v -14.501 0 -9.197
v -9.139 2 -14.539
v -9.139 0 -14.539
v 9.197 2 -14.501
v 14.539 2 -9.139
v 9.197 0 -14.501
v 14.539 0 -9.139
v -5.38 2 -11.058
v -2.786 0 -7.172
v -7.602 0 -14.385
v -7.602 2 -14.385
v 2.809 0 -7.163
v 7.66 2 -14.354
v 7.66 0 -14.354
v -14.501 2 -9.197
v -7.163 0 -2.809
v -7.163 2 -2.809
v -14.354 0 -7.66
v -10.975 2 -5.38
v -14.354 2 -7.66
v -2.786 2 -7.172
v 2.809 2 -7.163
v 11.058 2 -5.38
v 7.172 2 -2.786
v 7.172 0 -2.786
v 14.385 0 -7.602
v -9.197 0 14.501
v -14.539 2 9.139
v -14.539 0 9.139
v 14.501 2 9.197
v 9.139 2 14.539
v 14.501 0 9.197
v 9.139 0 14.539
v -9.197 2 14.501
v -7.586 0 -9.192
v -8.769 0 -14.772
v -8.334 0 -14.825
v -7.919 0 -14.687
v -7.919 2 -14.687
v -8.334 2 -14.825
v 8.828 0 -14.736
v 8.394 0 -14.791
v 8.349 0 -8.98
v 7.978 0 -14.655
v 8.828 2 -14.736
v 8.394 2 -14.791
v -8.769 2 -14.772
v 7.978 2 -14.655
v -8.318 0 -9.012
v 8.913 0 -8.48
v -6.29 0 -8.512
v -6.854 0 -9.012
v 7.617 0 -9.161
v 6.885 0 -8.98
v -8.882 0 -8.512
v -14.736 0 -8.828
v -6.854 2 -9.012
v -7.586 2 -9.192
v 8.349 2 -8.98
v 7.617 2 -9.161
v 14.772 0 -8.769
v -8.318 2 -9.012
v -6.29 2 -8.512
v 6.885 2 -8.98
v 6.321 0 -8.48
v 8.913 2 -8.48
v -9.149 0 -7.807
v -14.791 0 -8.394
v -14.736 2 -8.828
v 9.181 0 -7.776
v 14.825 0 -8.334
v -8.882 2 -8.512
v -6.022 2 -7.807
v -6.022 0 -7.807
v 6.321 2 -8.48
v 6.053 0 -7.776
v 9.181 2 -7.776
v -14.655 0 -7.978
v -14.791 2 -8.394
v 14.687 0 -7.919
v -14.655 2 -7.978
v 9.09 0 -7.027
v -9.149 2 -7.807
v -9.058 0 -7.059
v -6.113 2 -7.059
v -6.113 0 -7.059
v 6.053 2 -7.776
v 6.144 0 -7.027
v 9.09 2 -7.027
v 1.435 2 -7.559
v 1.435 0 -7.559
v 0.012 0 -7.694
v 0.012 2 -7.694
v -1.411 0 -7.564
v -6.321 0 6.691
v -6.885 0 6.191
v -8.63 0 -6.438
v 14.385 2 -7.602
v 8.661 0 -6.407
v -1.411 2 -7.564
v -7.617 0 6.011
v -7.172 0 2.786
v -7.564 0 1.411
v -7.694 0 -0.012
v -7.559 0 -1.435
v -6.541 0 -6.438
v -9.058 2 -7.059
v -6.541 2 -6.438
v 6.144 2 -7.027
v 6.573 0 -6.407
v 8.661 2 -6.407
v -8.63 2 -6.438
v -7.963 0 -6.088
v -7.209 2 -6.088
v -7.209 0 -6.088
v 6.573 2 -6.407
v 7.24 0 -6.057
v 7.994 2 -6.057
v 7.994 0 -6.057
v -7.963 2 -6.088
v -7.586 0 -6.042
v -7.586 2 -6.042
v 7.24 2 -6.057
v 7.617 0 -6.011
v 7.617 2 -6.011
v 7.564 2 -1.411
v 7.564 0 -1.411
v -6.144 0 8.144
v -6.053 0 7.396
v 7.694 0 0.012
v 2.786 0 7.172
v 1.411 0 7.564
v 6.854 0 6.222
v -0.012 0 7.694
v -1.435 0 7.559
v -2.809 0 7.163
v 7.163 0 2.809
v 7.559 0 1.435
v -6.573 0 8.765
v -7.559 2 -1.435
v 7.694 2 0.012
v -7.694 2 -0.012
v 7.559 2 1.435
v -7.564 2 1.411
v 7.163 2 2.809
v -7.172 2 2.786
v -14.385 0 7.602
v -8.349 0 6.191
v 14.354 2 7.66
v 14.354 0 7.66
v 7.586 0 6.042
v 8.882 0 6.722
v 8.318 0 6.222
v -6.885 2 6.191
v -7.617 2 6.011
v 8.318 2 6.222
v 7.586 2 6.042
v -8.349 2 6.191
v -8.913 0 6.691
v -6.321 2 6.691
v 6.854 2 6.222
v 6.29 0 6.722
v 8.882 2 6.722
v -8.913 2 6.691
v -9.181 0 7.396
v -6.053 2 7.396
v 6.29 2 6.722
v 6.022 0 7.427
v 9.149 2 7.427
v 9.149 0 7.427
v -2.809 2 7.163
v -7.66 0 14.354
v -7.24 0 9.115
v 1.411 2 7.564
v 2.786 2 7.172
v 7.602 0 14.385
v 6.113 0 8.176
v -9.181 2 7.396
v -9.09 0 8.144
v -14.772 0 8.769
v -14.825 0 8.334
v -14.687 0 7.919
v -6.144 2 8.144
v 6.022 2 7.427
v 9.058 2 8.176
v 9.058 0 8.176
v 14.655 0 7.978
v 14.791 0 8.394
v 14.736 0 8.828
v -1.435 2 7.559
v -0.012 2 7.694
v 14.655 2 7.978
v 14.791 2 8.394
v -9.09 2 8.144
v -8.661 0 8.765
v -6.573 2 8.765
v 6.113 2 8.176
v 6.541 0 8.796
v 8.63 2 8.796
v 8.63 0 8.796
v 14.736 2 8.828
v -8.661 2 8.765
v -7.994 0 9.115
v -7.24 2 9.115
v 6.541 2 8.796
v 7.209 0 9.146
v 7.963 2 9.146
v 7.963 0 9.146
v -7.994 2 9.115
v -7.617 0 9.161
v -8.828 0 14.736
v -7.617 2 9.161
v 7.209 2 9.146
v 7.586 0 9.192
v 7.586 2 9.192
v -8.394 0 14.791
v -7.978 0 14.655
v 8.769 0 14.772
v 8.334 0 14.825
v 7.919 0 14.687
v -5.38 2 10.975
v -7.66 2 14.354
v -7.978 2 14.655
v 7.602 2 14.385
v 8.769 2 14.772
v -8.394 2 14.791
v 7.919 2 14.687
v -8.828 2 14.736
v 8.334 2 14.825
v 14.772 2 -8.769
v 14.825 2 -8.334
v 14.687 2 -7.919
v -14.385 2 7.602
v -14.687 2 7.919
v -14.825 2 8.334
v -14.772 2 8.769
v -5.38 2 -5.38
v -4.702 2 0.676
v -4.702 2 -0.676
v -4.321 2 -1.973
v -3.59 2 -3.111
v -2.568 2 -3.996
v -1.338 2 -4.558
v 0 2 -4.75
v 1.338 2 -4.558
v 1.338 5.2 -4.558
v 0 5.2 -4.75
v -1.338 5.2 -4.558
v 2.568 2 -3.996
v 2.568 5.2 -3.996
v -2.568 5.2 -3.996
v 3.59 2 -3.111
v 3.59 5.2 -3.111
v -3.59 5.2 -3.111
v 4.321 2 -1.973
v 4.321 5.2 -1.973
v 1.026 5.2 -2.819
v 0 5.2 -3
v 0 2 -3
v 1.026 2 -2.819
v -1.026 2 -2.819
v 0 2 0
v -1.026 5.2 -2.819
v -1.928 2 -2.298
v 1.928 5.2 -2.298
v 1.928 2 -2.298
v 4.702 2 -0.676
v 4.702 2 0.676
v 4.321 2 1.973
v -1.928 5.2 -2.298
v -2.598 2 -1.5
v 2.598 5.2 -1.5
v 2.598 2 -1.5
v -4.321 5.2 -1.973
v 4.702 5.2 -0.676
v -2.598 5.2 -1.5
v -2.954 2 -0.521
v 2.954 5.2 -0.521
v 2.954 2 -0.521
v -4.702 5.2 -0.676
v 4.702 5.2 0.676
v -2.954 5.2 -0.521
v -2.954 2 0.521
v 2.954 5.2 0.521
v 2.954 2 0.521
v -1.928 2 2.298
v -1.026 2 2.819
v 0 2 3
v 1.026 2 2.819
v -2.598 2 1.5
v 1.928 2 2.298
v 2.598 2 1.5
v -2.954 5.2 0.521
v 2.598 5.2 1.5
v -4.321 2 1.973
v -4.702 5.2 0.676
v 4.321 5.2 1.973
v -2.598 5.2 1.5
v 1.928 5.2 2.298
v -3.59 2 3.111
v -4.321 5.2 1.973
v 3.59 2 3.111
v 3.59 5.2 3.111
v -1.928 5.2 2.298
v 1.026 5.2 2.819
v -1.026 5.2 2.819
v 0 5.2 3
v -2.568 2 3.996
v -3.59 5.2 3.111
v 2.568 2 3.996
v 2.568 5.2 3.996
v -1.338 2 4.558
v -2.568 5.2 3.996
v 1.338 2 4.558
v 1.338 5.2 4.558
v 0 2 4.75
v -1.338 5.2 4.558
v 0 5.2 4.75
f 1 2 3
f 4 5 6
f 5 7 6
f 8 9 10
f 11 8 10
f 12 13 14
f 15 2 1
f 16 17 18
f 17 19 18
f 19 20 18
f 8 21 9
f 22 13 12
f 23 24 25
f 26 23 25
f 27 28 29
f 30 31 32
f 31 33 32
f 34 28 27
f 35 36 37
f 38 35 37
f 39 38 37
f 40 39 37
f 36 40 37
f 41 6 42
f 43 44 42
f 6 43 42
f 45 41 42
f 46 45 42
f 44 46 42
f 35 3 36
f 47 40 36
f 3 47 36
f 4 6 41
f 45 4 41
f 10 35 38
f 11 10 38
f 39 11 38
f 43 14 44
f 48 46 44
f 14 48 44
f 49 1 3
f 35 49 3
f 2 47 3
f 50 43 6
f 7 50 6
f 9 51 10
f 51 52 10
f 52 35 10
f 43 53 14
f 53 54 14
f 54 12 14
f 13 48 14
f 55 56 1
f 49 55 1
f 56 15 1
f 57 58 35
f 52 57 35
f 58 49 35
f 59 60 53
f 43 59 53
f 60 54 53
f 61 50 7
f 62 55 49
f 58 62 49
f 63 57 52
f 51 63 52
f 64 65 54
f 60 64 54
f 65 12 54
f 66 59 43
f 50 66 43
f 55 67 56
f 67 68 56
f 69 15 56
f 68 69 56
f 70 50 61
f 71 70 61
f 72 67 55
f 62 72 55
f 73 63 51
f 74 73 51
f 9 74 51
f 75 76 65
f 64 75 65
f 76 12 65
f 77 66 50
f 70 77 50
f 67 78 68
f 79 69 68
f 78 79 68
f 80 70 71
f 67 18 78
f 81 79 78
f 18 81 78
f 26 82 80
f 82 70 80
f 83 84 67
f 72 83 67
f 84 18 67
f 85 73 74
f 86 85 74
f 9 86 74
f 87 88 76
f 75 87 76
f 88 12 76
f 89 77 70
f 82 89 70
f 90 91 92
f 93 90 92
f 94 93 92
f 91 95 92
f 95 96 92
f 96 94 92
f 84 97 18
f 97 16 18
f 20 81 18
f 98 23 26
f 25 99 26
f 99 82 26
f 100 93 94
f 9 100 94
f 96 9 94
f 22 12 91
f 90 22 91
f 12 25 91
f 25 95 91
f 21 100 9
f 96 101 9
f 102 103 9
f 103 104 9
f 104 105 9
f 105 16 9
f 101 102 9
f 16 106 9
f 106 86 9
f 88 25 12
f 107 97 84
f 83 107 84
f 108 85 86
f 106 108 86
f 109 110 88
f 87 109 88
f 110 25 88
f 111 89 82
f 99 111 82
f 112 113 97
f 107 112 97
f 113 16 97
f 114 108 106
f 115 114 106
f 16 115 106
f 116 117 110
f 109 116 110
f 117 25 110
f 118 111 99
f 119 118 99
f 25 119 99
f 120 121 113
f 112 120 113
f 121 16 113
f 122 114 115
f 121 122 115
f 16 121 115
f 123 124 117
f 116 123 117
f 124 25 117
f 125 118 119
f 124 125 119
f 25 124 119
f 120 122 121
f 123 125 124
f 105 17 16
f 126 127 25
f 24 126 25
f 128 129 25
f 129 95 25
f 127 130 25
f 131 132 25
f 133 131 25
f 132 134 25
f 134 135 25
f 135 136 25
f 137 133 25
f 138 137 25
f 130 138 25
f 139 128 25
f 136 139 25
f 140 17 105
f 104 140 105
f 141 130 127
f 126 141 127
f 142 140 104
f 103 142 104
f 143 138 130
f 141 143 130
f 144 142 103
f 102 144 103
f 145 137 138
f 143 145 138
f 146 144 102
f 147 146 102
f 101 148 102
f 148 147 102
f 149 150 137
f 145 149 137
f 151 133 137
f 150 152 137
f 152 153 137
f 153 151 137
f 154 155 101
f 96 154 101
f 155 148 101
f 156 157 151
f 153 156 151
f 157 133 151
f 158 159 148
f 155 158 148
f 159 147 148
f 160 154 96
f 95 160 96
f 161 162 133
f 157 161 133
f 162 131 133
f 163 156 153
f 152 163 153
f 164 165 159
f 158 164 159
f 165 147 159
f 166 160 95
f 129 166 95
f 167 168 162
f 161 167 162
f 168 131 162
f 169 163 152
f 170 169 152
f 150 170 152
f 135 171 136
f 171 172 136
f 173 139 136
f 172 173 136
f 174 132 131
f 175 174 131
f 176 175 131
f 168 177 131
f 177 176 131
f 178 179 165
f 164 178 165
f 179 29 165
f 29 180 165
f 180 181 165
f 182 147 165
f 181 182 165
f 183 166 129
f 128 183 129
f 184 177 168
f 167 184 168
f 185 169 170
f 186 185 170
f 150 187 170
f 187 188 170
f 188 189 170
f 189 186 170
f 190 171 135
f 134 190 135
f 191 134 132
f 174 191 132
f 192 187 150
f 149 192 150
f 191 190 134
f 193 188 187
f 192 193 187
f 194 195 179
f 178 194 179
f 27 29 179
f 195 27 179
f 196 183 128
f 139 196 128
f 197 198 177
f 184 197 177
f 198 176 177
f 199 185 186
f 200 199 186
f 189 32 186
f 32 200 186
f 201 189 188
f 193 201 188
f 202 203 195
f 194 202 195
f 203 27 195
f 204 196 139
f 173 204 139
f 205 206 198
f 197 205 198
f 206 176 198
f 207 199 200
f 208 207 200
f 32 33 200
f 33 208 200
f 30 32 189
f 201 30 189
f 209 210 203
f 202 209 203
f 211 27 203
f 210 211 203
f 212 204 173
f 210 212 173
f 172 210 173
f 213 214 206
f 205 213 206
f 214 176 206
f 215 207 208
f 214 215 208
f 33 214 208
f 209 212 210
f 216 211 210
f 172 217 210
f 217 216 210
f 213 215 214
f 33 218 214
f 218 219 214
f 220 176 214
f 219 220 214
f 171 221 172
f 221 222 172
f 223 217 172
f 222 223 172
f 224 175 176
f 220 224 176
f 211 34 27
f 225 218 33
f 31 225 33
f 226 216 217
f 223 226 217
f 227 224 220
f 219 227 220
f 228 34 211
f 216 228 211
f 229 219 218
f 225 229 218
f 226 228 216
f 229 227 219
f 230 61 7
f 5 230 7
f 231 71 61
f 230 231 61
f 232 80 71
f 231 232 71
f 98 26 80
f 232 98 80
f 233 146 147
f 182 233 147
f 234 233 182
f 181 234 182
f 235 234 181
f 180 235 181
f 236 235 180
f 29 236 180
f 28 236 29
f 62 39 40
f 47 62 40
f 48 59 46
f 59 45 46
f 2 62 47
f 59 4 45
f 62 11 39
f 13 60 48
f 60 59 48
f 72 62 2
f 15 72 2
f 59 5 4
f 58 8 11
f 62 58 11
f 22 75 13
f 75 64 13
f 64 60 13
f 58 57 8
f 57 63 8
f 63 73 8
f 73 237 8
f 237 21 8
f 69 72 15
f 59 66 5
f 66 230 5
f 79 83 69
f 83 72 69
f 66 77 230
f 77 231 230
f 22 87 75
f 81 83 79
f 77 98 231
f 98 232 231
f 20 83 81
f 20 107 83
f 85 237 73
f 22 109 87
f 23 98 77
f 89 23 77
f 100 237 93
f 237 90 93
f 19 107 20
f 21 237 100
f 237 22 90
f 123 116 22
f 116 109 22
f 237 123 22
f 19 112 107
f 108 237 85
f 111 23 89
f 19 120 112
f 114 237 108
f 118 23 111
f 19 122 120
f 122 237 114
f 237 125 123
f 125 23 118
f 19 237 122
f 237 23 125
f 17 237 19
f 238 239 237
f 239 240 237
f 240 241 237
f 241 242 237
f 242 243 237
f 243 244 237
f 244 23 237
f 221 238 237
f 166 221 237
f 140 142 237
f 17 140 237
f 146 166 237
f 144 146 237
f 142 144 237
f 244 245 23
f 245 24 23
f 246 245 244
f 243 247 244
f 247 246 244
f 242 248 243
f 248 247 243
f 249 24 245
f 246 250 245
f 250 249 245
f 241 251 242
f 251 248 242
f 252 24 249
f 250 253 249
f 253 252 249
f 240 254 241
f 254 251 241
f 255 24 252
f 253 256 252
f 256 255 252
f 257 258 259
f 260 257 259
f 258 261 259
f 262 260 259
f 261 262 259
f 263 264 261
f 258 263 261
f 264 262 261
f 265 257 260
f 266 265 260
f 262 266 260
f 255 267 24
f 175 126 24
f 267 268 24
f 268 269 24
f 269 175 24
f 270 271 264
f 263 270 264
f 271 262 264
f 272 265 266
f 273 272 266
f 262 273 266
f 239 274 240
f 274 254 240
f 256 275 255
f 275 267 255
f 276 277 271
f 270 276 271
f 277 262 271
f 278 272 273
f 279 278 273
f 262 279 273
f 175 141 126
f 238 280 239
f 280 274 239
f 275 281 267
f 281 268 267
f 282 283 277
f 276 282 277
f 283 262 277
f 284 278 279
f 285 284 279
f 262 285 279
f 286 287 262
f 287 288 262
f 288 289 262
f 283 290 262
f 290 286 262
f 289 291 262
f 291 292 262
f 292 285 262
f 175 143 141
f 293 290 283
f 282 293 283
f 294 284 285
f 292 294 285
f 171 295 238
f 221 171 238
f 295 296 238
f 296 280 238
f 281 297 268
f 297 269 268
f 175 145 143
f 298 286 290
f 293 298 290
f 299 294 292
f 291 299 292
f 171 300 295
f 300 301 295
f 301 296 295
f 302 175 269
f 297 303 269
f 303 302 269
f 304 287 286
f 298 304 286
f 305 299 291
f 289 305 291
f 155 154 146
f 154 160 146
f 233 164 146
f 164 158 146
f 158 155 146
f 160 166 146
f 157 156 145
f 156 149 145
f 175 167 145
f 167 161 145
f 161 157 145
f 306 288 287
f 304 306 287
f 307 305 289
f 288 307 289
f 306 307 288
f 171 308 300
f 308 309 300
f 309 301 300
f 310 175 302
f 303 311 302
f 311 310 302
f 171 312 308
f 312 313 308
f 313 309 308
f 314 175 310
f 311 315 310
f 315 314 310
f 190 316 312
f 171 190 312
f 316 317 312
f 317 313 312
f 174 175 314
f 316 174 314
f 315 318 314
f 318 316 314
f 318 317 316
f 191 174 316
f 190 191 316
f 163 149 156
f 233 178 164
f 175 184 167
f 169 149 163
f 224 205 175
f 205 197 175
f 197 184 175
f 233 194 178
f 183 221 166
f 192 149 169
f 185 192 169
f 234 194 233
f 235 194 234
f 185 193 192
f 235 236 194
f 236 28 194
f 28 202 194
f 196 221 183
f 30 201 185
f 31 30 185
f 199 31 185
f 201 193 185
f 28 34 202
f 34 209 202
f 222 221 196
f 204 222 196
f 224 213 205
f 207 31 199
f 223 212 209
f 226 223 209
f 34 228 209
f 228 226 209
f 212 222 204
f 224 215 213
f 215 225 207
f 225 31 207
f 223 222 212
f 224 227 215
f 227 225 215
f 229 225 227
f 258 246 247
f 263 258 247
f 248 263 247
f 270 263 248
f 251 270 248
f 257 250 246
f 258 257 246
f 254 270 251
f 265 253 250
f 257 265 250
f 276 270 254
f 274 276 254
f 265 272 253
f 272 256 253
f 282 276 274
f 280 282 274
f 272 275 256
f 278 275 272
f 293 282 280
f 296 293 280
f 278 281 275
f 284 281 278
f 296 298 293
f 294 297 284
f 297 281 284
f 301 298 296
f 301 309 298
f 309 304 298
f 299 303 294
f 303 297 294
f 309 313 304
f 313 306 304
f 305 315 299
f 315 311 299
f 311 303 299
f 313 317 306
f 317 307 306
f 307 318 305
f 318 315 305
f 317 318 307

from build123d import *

# Parameters (mm, degrees)
SKETCH1_R             = 3
BOSS_EXTRUDE1_DEPTH   = 2
SKETCH1_R_2           = 4.75
SKETCH1_R_3           = 1.575
BOSS_EXTRUDE1_2_DEPTH = 2
SKETCH1_3_R           = 4.75
SKETCH1_3_R_2         = 3
BOSS_EXTRUDE2_DEPTH   = 5.2
FILLET1_R             = 1


with BuildPart() as part:
    # Sketch1 → Boss-Extrude1 (new body)
    with BuildSketch(Plane(origin=(0, 0, 0), x_dir=(1, 0, 0), z_dir=(0, 1, 0))):
        Circle(SKETCH1_R)
    extrude(amount=BOSS_EXTRUDE1_DEPTH)



with BuildPart() as body_2:
    # Sketch1 → Boss-Extrude1 2 (new body)
    with BuildSketch(Plane(origin=(0, 0, 0), x_dir=(1, 0, 0), z_dir=(0, 1, 0))):
        with BuildLine():
            ThreePointArc((-2.808735927, -7.163433576), (-0.01229774, -7.694389311), (2.785823381, -7.172375213))
            Line((2.785823381, -7.172375213), (8.27733707, -15.397108965))
            Line((8.27733707, -15.397108965), (15.361972878, -8.339635234))
            Line((15.361972878, -8.339635234), (7.163433576, -2.808735927))
            ThreePointArc((7.163433576, -2.808735927), (7.694389311, -0.01229774), (7.172375213, 2.785823381))
            Line((7.172375213, 2.785823381), (15.397108965, 8.27733707))
            Line((15.397108965, 8.27733707), (8.339635234, 15.361972878))
            Line((8.339635234, 15.361972878), (2.808735927, 7.163433576))
            ThreePointArc((2.808735927, 7.163433576), (0.01229774, 7.694389311), (-2.785823381, 7.172375213))
            Line((-2.785823381, 7.172375213), (-8.27733707, 15.397108965))
            Line((-8.27733707, 15.397108965), (-15.361972878, 8.339635234))
            Line((-15.361972878, 8.339635234), (-7.163433576, 2.808735927))
            ThreePointArc((-7.163433576, 2.808735927), (-7.694389311, 0.01229774), (-7.172375213, -2.785823381))
            Line((-7.172375213, -2.785823381), (-15.397108965, -8.27733707))
            Line((-15.397108965, -8.27733707), (-8.339635234, -15.361972878))
            Line((-8.339635234, -15.361972878), (-2.808735927, -7.163433576))
        make_face()
        Circle(SKETCH1_R_2, mode=Mode.SUBTRACT)
        with Locations((-7.61701493, -7.585748715)):
            Circle(SKETCH1_R_3, mode=Mode.SUBTRACT)
        with Locations((7.585748715, -7.61701493)):
            Circle(SKETCH1_R_3, mode=Mode.SUBTRACT)
        with Locations((-7.585748715, 7.61701493)):
            Circle(SKETCH1_R_3, mode=Mode.SUBTRACT)
        with Locations((7.61701493, 7.585748715)):
            Circle(SKETCH1_R_3, mode=Mode.SUBTRACT)
    extrude(amount=BOSS_EXTRUDE1_2_DEPTH)


with BuildPart() as part_1:
    add(part.part)

    add(body_2.part)  # Boss-Extrude2 merges body 2
    # Sketch1<3> → Boss-Extrude2 (add)
    with BuildSketch(Plane(origin=(0, 0, 0), x_dir=(1, 0, 0), z_dir=(0, 1, 0))):
        Circle(SKETCH1_3_R)
        Circle(SKETCH1_3_R_2, mode=Mode.SUBTRACT)
    extrude(amount=BOSS_EXTRUDE2_DEPTH)

    # Fillet1
    fillet1_edges = [part_1.edges().sort_by_distance(p)[0] for p in [
        (-15.361972878, 1, -8.339635234),
        (-8.27733707, 1, -15.397108965),
        (8.339635234, 1, -15.361972878),
        (15.361972878, 1, 8.339635234),
        (15.397108965, 1, -8.27733707),
        (8.27733707, 1, 15.397108965),
        (-15.397108965, 1, 8.27733707),
        (-8.339635234, 1, 15.361972878),
    ]]
    fillet(fillet1_edges, radius=FILLET1_R)


solid = part_1.part
